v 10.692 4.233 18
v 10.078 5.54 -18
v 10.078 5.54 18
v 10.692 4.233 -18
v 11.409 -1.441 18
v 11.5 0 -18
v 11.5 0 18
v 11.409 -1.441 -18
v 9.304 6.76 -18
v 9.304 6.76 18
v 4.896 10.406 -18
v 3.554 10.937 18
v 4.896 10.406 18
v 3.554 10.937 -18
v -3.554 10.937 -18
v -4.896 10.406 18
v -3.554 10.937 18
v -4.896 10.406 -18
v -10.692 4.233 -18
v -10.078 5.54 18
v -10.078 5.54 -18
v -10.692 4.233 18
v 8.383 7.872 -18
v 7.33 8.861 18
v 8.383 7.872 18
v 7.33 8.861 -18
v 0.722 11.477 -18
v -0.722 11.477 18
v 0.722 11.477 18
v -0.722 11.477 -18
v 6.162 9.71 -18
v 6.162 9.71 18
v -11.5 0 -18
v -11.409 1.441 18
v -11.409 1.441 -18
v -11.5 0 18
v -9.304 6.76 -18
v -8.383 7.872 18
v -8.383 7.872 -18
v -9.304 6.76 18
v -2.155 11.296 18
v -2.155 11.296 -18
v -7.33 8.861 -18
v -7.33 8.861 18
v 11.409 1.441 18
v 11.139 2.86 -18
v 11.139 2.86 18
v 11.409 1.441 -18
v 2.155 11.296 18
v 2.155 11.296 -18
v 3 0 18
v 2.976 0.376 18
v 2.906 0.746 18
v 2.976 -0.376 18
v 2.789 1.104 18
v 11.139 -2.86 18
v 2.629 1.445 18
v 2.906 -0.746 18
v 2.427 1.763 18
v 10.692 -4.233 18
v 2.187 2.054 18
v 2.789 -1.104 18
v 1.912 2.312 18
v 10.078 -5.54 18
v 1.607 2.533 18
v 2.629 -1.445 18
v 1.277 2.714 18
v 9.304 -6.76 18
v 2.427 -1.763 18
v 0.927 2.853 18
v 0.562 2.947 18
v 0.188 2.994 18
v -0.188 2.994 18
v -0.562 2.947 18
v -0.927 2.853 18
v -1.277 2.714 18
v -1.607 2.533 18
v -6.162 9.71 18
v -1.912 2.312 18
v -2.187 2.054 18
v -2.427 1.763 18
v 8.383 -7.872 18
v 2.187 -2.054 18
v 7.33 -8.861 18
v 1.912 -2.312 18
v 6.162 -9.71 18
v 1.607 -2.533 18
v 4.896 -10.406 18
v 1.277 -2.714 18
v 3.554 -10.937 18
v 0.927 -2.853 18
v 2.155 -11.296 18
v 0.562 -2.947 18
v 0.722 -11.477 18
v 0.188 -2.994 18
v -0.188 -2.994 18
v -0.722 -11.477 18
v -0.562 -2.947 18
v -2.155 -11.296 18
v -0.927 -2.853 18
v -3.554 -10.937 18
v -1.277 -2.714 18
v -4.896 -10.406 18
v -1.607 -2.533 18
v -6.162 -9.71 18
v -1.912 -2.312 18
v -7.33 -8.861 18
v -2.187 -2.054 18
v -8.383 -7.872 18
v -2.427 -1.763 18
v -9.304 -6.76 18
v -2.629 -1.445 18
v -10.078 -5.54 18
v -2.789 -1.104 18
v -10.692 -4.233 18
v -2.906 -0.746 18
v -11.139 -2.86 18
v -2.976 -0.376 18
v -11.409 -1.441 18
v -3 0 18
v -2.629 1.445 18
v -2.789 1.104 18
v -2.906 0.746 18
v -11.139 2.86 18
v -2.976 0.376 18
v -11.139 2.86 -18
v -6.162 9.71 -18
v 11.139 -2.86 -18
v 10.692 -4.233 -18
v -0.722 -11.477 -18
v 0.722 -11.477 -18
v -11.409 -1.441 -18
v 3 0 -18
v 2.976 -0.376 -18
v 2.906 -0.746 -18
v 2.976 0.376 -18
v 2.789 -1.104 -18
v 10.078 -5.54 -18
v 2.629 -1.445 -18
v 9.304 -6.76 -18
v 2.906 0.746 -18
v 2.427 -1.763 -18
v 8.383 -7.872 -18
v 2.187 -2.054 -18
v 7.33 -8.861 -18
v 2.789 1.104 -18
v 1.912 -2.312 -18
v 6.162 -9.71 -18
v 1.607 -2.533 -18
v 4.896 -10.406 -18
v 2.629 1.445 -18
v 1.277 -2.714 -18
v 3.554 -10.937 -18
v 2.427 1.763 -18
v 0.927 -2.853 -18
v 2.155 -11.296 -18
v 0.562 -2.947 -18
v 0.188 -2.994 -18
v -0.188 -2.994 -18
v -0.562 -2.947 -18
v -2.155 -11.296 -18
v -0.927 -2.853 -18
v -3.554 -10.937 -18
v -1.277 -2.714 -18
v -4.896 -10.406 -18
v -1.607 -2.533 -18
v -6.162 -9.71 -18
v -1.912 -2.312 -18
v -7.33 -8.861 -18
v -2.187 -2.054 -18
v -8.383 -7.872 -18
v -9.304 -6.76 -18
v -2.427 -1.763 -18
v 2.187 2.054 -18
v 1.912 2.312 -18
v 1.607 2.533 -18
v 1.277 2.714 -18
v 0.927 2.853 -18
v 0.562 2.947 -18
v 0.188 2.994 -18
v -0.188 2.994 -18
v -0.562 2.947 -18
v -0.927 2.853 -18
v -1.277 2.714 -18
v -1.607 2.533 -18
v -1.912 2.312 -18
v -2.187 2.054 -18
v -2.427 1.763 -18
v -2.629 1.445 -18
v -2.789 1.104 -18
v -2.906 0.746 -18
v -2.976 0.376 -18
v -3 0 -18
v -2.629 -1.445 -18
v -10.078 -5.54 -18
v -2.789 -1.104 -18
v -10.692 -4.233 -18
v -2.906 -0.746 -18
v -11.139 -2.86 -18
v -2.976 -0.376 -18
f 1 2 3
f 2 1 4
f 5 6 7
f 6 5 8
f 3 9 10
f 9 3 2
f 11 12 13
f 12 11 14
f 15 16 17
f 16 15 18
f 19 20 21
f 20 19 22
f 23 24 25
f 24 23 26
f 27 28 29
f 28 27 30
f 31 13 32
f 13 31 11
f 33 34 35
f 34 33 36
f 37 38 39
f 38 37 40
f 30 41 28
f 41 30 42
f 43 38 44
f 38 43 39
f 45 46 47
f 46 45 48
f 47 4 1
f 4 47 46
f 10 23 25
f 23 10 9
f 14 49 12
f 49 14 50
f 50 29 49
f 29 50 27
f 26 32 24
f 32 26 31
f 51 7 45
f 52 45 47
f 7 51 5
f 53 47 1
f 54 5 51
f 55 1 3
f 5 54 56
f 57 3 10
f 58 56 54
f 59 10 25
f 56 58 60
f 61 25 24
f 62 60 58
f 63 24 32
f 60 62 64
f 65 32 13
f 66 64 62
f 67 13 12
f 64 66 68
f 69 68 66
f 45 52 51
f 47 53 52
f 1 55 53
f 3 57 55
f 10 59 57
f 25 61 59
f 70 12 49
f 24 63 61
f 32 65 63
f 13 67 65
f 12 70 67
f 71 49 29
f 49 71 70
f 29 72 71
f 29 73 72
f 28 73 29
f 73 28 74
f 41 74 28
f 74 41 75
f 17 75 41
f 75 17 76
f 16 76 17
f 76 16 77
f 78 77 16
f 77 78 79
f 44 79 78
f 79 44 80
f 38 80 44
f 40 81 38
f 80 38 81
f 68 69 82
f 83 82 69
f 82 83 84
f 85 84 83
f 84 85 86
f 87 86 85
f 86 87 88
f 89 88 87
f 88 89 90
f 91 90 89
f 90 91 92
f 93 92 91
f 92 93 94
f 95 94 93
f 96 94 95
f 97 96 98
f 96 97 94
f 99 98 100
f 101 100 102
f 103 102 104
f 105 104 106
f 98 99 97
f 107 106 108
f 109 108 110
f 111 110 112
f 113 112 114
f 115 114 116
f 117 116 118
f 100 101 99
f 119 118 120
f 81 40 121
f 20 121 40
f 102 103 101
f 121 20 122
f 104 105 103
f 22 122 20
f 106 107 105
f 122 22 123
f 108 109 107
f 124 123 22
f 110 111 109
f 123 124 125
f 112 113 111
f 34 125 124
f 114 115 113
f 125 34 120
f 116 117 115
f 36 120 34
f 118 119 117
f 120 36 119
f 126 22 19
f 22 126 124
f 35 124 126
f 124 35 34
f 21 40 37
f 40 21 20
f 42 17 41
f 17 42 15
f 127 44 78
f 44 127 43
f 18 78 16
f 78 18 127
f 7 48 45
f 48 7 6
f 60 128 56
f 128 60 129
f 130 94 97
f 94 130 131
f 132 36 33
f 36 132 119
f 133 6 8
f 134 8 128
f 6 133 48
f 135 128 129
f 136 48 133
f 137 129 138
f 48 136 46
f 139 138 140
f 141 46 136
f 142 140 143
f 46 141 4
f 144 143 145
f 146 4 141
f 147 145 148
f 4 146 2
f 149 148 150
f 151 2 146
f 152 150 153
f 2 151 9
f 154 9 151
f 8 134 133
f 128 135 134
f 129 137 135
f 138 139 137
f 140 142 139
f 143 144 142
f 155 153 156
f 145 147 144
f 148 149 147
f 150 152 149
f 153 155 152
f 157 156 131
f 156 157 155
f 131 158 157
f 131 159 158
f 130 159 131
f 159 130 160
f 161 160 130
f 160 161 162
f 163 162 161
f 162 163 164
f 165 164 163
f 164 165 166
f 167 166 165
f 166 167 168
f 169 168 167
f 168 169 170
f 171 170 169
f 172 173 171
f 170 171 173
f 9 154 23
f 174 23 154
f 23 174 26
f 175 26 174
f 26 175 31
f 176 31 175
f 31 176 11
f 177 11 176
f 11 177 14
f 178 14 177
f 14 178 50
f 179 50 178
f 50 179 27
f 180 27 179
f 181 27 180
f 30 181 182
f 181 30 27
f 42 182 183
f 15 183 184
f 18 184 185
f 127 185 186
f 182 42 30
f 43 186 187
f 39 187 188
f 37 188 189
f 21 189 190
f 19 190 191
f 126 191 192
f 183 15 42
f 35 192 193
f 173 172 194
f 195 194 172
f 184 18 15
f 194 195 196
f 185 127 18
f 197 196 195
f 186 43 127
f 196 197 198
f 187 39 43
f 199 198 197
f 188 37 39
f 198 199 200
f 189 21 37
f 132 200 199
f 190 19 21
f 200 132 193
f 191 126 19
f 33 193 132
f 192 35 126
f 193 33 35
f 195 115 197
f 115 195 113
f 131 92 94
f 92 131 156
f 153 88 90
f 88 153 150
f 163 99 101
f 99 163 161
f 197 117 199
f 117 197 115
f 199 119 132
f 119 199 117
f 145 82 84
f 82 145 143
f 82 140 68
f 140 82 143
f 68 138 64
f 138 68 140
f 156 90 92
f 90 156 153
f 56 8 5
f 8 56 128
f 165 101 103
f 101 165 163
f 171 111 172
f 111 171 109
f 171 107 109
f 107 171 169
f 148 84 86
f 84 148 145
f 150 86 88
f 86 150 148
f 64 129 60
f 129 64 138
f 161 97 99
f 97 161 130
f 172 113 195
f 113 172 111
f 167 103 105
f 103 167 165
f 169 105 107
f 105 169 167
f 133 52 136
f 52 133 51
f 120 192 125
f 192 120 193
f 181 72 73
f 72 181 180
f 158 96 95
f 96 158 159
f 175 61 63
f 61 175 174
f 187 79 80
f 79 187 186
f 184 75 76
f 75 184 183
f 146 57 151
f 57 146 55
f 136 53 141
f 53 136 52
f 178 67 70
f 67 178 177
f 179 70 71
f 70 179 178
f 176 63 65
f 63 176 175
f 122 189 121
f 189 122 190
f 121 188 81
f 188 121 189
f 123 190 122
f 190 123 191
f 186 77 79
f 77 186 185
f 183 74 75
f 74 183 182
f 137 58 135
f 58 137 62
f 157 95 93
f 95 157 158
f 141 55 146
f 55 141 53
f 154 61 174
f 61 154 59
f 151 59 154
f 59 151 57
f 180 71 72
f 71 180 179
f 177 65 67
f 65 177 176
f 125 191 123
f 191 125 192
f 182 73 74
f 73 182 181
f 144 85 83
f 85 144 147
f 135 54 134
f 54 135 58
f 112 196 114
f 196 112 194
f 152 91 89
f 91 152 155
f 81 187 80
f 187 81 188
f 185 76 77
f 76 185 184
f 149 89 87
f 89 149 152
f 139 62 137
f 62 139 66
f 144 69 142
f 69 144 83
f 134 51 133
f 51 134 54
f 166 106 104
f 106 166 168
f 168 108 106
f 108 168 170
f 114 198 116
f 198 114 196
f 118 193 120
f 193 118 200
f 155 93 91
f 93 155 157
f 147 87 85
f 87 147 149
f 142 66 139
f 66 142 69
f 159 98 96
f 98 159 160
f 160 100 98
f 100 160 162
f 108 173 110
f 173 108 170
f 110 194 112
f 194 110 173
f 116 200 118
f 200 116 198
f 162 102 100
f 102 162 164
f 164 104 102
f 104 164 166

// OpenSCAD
$fn = 50;


difference() {
	union() {
		translate(v = [0, 0, -18.0000000000]) {
			cylinder(h = 36, r = 11.5000000000);
		}
	}
	union() {
		translate(v = [0, 0, -100.0000000000]) {
			cylinder(h = 200, r = 3);
		}
	}
}
